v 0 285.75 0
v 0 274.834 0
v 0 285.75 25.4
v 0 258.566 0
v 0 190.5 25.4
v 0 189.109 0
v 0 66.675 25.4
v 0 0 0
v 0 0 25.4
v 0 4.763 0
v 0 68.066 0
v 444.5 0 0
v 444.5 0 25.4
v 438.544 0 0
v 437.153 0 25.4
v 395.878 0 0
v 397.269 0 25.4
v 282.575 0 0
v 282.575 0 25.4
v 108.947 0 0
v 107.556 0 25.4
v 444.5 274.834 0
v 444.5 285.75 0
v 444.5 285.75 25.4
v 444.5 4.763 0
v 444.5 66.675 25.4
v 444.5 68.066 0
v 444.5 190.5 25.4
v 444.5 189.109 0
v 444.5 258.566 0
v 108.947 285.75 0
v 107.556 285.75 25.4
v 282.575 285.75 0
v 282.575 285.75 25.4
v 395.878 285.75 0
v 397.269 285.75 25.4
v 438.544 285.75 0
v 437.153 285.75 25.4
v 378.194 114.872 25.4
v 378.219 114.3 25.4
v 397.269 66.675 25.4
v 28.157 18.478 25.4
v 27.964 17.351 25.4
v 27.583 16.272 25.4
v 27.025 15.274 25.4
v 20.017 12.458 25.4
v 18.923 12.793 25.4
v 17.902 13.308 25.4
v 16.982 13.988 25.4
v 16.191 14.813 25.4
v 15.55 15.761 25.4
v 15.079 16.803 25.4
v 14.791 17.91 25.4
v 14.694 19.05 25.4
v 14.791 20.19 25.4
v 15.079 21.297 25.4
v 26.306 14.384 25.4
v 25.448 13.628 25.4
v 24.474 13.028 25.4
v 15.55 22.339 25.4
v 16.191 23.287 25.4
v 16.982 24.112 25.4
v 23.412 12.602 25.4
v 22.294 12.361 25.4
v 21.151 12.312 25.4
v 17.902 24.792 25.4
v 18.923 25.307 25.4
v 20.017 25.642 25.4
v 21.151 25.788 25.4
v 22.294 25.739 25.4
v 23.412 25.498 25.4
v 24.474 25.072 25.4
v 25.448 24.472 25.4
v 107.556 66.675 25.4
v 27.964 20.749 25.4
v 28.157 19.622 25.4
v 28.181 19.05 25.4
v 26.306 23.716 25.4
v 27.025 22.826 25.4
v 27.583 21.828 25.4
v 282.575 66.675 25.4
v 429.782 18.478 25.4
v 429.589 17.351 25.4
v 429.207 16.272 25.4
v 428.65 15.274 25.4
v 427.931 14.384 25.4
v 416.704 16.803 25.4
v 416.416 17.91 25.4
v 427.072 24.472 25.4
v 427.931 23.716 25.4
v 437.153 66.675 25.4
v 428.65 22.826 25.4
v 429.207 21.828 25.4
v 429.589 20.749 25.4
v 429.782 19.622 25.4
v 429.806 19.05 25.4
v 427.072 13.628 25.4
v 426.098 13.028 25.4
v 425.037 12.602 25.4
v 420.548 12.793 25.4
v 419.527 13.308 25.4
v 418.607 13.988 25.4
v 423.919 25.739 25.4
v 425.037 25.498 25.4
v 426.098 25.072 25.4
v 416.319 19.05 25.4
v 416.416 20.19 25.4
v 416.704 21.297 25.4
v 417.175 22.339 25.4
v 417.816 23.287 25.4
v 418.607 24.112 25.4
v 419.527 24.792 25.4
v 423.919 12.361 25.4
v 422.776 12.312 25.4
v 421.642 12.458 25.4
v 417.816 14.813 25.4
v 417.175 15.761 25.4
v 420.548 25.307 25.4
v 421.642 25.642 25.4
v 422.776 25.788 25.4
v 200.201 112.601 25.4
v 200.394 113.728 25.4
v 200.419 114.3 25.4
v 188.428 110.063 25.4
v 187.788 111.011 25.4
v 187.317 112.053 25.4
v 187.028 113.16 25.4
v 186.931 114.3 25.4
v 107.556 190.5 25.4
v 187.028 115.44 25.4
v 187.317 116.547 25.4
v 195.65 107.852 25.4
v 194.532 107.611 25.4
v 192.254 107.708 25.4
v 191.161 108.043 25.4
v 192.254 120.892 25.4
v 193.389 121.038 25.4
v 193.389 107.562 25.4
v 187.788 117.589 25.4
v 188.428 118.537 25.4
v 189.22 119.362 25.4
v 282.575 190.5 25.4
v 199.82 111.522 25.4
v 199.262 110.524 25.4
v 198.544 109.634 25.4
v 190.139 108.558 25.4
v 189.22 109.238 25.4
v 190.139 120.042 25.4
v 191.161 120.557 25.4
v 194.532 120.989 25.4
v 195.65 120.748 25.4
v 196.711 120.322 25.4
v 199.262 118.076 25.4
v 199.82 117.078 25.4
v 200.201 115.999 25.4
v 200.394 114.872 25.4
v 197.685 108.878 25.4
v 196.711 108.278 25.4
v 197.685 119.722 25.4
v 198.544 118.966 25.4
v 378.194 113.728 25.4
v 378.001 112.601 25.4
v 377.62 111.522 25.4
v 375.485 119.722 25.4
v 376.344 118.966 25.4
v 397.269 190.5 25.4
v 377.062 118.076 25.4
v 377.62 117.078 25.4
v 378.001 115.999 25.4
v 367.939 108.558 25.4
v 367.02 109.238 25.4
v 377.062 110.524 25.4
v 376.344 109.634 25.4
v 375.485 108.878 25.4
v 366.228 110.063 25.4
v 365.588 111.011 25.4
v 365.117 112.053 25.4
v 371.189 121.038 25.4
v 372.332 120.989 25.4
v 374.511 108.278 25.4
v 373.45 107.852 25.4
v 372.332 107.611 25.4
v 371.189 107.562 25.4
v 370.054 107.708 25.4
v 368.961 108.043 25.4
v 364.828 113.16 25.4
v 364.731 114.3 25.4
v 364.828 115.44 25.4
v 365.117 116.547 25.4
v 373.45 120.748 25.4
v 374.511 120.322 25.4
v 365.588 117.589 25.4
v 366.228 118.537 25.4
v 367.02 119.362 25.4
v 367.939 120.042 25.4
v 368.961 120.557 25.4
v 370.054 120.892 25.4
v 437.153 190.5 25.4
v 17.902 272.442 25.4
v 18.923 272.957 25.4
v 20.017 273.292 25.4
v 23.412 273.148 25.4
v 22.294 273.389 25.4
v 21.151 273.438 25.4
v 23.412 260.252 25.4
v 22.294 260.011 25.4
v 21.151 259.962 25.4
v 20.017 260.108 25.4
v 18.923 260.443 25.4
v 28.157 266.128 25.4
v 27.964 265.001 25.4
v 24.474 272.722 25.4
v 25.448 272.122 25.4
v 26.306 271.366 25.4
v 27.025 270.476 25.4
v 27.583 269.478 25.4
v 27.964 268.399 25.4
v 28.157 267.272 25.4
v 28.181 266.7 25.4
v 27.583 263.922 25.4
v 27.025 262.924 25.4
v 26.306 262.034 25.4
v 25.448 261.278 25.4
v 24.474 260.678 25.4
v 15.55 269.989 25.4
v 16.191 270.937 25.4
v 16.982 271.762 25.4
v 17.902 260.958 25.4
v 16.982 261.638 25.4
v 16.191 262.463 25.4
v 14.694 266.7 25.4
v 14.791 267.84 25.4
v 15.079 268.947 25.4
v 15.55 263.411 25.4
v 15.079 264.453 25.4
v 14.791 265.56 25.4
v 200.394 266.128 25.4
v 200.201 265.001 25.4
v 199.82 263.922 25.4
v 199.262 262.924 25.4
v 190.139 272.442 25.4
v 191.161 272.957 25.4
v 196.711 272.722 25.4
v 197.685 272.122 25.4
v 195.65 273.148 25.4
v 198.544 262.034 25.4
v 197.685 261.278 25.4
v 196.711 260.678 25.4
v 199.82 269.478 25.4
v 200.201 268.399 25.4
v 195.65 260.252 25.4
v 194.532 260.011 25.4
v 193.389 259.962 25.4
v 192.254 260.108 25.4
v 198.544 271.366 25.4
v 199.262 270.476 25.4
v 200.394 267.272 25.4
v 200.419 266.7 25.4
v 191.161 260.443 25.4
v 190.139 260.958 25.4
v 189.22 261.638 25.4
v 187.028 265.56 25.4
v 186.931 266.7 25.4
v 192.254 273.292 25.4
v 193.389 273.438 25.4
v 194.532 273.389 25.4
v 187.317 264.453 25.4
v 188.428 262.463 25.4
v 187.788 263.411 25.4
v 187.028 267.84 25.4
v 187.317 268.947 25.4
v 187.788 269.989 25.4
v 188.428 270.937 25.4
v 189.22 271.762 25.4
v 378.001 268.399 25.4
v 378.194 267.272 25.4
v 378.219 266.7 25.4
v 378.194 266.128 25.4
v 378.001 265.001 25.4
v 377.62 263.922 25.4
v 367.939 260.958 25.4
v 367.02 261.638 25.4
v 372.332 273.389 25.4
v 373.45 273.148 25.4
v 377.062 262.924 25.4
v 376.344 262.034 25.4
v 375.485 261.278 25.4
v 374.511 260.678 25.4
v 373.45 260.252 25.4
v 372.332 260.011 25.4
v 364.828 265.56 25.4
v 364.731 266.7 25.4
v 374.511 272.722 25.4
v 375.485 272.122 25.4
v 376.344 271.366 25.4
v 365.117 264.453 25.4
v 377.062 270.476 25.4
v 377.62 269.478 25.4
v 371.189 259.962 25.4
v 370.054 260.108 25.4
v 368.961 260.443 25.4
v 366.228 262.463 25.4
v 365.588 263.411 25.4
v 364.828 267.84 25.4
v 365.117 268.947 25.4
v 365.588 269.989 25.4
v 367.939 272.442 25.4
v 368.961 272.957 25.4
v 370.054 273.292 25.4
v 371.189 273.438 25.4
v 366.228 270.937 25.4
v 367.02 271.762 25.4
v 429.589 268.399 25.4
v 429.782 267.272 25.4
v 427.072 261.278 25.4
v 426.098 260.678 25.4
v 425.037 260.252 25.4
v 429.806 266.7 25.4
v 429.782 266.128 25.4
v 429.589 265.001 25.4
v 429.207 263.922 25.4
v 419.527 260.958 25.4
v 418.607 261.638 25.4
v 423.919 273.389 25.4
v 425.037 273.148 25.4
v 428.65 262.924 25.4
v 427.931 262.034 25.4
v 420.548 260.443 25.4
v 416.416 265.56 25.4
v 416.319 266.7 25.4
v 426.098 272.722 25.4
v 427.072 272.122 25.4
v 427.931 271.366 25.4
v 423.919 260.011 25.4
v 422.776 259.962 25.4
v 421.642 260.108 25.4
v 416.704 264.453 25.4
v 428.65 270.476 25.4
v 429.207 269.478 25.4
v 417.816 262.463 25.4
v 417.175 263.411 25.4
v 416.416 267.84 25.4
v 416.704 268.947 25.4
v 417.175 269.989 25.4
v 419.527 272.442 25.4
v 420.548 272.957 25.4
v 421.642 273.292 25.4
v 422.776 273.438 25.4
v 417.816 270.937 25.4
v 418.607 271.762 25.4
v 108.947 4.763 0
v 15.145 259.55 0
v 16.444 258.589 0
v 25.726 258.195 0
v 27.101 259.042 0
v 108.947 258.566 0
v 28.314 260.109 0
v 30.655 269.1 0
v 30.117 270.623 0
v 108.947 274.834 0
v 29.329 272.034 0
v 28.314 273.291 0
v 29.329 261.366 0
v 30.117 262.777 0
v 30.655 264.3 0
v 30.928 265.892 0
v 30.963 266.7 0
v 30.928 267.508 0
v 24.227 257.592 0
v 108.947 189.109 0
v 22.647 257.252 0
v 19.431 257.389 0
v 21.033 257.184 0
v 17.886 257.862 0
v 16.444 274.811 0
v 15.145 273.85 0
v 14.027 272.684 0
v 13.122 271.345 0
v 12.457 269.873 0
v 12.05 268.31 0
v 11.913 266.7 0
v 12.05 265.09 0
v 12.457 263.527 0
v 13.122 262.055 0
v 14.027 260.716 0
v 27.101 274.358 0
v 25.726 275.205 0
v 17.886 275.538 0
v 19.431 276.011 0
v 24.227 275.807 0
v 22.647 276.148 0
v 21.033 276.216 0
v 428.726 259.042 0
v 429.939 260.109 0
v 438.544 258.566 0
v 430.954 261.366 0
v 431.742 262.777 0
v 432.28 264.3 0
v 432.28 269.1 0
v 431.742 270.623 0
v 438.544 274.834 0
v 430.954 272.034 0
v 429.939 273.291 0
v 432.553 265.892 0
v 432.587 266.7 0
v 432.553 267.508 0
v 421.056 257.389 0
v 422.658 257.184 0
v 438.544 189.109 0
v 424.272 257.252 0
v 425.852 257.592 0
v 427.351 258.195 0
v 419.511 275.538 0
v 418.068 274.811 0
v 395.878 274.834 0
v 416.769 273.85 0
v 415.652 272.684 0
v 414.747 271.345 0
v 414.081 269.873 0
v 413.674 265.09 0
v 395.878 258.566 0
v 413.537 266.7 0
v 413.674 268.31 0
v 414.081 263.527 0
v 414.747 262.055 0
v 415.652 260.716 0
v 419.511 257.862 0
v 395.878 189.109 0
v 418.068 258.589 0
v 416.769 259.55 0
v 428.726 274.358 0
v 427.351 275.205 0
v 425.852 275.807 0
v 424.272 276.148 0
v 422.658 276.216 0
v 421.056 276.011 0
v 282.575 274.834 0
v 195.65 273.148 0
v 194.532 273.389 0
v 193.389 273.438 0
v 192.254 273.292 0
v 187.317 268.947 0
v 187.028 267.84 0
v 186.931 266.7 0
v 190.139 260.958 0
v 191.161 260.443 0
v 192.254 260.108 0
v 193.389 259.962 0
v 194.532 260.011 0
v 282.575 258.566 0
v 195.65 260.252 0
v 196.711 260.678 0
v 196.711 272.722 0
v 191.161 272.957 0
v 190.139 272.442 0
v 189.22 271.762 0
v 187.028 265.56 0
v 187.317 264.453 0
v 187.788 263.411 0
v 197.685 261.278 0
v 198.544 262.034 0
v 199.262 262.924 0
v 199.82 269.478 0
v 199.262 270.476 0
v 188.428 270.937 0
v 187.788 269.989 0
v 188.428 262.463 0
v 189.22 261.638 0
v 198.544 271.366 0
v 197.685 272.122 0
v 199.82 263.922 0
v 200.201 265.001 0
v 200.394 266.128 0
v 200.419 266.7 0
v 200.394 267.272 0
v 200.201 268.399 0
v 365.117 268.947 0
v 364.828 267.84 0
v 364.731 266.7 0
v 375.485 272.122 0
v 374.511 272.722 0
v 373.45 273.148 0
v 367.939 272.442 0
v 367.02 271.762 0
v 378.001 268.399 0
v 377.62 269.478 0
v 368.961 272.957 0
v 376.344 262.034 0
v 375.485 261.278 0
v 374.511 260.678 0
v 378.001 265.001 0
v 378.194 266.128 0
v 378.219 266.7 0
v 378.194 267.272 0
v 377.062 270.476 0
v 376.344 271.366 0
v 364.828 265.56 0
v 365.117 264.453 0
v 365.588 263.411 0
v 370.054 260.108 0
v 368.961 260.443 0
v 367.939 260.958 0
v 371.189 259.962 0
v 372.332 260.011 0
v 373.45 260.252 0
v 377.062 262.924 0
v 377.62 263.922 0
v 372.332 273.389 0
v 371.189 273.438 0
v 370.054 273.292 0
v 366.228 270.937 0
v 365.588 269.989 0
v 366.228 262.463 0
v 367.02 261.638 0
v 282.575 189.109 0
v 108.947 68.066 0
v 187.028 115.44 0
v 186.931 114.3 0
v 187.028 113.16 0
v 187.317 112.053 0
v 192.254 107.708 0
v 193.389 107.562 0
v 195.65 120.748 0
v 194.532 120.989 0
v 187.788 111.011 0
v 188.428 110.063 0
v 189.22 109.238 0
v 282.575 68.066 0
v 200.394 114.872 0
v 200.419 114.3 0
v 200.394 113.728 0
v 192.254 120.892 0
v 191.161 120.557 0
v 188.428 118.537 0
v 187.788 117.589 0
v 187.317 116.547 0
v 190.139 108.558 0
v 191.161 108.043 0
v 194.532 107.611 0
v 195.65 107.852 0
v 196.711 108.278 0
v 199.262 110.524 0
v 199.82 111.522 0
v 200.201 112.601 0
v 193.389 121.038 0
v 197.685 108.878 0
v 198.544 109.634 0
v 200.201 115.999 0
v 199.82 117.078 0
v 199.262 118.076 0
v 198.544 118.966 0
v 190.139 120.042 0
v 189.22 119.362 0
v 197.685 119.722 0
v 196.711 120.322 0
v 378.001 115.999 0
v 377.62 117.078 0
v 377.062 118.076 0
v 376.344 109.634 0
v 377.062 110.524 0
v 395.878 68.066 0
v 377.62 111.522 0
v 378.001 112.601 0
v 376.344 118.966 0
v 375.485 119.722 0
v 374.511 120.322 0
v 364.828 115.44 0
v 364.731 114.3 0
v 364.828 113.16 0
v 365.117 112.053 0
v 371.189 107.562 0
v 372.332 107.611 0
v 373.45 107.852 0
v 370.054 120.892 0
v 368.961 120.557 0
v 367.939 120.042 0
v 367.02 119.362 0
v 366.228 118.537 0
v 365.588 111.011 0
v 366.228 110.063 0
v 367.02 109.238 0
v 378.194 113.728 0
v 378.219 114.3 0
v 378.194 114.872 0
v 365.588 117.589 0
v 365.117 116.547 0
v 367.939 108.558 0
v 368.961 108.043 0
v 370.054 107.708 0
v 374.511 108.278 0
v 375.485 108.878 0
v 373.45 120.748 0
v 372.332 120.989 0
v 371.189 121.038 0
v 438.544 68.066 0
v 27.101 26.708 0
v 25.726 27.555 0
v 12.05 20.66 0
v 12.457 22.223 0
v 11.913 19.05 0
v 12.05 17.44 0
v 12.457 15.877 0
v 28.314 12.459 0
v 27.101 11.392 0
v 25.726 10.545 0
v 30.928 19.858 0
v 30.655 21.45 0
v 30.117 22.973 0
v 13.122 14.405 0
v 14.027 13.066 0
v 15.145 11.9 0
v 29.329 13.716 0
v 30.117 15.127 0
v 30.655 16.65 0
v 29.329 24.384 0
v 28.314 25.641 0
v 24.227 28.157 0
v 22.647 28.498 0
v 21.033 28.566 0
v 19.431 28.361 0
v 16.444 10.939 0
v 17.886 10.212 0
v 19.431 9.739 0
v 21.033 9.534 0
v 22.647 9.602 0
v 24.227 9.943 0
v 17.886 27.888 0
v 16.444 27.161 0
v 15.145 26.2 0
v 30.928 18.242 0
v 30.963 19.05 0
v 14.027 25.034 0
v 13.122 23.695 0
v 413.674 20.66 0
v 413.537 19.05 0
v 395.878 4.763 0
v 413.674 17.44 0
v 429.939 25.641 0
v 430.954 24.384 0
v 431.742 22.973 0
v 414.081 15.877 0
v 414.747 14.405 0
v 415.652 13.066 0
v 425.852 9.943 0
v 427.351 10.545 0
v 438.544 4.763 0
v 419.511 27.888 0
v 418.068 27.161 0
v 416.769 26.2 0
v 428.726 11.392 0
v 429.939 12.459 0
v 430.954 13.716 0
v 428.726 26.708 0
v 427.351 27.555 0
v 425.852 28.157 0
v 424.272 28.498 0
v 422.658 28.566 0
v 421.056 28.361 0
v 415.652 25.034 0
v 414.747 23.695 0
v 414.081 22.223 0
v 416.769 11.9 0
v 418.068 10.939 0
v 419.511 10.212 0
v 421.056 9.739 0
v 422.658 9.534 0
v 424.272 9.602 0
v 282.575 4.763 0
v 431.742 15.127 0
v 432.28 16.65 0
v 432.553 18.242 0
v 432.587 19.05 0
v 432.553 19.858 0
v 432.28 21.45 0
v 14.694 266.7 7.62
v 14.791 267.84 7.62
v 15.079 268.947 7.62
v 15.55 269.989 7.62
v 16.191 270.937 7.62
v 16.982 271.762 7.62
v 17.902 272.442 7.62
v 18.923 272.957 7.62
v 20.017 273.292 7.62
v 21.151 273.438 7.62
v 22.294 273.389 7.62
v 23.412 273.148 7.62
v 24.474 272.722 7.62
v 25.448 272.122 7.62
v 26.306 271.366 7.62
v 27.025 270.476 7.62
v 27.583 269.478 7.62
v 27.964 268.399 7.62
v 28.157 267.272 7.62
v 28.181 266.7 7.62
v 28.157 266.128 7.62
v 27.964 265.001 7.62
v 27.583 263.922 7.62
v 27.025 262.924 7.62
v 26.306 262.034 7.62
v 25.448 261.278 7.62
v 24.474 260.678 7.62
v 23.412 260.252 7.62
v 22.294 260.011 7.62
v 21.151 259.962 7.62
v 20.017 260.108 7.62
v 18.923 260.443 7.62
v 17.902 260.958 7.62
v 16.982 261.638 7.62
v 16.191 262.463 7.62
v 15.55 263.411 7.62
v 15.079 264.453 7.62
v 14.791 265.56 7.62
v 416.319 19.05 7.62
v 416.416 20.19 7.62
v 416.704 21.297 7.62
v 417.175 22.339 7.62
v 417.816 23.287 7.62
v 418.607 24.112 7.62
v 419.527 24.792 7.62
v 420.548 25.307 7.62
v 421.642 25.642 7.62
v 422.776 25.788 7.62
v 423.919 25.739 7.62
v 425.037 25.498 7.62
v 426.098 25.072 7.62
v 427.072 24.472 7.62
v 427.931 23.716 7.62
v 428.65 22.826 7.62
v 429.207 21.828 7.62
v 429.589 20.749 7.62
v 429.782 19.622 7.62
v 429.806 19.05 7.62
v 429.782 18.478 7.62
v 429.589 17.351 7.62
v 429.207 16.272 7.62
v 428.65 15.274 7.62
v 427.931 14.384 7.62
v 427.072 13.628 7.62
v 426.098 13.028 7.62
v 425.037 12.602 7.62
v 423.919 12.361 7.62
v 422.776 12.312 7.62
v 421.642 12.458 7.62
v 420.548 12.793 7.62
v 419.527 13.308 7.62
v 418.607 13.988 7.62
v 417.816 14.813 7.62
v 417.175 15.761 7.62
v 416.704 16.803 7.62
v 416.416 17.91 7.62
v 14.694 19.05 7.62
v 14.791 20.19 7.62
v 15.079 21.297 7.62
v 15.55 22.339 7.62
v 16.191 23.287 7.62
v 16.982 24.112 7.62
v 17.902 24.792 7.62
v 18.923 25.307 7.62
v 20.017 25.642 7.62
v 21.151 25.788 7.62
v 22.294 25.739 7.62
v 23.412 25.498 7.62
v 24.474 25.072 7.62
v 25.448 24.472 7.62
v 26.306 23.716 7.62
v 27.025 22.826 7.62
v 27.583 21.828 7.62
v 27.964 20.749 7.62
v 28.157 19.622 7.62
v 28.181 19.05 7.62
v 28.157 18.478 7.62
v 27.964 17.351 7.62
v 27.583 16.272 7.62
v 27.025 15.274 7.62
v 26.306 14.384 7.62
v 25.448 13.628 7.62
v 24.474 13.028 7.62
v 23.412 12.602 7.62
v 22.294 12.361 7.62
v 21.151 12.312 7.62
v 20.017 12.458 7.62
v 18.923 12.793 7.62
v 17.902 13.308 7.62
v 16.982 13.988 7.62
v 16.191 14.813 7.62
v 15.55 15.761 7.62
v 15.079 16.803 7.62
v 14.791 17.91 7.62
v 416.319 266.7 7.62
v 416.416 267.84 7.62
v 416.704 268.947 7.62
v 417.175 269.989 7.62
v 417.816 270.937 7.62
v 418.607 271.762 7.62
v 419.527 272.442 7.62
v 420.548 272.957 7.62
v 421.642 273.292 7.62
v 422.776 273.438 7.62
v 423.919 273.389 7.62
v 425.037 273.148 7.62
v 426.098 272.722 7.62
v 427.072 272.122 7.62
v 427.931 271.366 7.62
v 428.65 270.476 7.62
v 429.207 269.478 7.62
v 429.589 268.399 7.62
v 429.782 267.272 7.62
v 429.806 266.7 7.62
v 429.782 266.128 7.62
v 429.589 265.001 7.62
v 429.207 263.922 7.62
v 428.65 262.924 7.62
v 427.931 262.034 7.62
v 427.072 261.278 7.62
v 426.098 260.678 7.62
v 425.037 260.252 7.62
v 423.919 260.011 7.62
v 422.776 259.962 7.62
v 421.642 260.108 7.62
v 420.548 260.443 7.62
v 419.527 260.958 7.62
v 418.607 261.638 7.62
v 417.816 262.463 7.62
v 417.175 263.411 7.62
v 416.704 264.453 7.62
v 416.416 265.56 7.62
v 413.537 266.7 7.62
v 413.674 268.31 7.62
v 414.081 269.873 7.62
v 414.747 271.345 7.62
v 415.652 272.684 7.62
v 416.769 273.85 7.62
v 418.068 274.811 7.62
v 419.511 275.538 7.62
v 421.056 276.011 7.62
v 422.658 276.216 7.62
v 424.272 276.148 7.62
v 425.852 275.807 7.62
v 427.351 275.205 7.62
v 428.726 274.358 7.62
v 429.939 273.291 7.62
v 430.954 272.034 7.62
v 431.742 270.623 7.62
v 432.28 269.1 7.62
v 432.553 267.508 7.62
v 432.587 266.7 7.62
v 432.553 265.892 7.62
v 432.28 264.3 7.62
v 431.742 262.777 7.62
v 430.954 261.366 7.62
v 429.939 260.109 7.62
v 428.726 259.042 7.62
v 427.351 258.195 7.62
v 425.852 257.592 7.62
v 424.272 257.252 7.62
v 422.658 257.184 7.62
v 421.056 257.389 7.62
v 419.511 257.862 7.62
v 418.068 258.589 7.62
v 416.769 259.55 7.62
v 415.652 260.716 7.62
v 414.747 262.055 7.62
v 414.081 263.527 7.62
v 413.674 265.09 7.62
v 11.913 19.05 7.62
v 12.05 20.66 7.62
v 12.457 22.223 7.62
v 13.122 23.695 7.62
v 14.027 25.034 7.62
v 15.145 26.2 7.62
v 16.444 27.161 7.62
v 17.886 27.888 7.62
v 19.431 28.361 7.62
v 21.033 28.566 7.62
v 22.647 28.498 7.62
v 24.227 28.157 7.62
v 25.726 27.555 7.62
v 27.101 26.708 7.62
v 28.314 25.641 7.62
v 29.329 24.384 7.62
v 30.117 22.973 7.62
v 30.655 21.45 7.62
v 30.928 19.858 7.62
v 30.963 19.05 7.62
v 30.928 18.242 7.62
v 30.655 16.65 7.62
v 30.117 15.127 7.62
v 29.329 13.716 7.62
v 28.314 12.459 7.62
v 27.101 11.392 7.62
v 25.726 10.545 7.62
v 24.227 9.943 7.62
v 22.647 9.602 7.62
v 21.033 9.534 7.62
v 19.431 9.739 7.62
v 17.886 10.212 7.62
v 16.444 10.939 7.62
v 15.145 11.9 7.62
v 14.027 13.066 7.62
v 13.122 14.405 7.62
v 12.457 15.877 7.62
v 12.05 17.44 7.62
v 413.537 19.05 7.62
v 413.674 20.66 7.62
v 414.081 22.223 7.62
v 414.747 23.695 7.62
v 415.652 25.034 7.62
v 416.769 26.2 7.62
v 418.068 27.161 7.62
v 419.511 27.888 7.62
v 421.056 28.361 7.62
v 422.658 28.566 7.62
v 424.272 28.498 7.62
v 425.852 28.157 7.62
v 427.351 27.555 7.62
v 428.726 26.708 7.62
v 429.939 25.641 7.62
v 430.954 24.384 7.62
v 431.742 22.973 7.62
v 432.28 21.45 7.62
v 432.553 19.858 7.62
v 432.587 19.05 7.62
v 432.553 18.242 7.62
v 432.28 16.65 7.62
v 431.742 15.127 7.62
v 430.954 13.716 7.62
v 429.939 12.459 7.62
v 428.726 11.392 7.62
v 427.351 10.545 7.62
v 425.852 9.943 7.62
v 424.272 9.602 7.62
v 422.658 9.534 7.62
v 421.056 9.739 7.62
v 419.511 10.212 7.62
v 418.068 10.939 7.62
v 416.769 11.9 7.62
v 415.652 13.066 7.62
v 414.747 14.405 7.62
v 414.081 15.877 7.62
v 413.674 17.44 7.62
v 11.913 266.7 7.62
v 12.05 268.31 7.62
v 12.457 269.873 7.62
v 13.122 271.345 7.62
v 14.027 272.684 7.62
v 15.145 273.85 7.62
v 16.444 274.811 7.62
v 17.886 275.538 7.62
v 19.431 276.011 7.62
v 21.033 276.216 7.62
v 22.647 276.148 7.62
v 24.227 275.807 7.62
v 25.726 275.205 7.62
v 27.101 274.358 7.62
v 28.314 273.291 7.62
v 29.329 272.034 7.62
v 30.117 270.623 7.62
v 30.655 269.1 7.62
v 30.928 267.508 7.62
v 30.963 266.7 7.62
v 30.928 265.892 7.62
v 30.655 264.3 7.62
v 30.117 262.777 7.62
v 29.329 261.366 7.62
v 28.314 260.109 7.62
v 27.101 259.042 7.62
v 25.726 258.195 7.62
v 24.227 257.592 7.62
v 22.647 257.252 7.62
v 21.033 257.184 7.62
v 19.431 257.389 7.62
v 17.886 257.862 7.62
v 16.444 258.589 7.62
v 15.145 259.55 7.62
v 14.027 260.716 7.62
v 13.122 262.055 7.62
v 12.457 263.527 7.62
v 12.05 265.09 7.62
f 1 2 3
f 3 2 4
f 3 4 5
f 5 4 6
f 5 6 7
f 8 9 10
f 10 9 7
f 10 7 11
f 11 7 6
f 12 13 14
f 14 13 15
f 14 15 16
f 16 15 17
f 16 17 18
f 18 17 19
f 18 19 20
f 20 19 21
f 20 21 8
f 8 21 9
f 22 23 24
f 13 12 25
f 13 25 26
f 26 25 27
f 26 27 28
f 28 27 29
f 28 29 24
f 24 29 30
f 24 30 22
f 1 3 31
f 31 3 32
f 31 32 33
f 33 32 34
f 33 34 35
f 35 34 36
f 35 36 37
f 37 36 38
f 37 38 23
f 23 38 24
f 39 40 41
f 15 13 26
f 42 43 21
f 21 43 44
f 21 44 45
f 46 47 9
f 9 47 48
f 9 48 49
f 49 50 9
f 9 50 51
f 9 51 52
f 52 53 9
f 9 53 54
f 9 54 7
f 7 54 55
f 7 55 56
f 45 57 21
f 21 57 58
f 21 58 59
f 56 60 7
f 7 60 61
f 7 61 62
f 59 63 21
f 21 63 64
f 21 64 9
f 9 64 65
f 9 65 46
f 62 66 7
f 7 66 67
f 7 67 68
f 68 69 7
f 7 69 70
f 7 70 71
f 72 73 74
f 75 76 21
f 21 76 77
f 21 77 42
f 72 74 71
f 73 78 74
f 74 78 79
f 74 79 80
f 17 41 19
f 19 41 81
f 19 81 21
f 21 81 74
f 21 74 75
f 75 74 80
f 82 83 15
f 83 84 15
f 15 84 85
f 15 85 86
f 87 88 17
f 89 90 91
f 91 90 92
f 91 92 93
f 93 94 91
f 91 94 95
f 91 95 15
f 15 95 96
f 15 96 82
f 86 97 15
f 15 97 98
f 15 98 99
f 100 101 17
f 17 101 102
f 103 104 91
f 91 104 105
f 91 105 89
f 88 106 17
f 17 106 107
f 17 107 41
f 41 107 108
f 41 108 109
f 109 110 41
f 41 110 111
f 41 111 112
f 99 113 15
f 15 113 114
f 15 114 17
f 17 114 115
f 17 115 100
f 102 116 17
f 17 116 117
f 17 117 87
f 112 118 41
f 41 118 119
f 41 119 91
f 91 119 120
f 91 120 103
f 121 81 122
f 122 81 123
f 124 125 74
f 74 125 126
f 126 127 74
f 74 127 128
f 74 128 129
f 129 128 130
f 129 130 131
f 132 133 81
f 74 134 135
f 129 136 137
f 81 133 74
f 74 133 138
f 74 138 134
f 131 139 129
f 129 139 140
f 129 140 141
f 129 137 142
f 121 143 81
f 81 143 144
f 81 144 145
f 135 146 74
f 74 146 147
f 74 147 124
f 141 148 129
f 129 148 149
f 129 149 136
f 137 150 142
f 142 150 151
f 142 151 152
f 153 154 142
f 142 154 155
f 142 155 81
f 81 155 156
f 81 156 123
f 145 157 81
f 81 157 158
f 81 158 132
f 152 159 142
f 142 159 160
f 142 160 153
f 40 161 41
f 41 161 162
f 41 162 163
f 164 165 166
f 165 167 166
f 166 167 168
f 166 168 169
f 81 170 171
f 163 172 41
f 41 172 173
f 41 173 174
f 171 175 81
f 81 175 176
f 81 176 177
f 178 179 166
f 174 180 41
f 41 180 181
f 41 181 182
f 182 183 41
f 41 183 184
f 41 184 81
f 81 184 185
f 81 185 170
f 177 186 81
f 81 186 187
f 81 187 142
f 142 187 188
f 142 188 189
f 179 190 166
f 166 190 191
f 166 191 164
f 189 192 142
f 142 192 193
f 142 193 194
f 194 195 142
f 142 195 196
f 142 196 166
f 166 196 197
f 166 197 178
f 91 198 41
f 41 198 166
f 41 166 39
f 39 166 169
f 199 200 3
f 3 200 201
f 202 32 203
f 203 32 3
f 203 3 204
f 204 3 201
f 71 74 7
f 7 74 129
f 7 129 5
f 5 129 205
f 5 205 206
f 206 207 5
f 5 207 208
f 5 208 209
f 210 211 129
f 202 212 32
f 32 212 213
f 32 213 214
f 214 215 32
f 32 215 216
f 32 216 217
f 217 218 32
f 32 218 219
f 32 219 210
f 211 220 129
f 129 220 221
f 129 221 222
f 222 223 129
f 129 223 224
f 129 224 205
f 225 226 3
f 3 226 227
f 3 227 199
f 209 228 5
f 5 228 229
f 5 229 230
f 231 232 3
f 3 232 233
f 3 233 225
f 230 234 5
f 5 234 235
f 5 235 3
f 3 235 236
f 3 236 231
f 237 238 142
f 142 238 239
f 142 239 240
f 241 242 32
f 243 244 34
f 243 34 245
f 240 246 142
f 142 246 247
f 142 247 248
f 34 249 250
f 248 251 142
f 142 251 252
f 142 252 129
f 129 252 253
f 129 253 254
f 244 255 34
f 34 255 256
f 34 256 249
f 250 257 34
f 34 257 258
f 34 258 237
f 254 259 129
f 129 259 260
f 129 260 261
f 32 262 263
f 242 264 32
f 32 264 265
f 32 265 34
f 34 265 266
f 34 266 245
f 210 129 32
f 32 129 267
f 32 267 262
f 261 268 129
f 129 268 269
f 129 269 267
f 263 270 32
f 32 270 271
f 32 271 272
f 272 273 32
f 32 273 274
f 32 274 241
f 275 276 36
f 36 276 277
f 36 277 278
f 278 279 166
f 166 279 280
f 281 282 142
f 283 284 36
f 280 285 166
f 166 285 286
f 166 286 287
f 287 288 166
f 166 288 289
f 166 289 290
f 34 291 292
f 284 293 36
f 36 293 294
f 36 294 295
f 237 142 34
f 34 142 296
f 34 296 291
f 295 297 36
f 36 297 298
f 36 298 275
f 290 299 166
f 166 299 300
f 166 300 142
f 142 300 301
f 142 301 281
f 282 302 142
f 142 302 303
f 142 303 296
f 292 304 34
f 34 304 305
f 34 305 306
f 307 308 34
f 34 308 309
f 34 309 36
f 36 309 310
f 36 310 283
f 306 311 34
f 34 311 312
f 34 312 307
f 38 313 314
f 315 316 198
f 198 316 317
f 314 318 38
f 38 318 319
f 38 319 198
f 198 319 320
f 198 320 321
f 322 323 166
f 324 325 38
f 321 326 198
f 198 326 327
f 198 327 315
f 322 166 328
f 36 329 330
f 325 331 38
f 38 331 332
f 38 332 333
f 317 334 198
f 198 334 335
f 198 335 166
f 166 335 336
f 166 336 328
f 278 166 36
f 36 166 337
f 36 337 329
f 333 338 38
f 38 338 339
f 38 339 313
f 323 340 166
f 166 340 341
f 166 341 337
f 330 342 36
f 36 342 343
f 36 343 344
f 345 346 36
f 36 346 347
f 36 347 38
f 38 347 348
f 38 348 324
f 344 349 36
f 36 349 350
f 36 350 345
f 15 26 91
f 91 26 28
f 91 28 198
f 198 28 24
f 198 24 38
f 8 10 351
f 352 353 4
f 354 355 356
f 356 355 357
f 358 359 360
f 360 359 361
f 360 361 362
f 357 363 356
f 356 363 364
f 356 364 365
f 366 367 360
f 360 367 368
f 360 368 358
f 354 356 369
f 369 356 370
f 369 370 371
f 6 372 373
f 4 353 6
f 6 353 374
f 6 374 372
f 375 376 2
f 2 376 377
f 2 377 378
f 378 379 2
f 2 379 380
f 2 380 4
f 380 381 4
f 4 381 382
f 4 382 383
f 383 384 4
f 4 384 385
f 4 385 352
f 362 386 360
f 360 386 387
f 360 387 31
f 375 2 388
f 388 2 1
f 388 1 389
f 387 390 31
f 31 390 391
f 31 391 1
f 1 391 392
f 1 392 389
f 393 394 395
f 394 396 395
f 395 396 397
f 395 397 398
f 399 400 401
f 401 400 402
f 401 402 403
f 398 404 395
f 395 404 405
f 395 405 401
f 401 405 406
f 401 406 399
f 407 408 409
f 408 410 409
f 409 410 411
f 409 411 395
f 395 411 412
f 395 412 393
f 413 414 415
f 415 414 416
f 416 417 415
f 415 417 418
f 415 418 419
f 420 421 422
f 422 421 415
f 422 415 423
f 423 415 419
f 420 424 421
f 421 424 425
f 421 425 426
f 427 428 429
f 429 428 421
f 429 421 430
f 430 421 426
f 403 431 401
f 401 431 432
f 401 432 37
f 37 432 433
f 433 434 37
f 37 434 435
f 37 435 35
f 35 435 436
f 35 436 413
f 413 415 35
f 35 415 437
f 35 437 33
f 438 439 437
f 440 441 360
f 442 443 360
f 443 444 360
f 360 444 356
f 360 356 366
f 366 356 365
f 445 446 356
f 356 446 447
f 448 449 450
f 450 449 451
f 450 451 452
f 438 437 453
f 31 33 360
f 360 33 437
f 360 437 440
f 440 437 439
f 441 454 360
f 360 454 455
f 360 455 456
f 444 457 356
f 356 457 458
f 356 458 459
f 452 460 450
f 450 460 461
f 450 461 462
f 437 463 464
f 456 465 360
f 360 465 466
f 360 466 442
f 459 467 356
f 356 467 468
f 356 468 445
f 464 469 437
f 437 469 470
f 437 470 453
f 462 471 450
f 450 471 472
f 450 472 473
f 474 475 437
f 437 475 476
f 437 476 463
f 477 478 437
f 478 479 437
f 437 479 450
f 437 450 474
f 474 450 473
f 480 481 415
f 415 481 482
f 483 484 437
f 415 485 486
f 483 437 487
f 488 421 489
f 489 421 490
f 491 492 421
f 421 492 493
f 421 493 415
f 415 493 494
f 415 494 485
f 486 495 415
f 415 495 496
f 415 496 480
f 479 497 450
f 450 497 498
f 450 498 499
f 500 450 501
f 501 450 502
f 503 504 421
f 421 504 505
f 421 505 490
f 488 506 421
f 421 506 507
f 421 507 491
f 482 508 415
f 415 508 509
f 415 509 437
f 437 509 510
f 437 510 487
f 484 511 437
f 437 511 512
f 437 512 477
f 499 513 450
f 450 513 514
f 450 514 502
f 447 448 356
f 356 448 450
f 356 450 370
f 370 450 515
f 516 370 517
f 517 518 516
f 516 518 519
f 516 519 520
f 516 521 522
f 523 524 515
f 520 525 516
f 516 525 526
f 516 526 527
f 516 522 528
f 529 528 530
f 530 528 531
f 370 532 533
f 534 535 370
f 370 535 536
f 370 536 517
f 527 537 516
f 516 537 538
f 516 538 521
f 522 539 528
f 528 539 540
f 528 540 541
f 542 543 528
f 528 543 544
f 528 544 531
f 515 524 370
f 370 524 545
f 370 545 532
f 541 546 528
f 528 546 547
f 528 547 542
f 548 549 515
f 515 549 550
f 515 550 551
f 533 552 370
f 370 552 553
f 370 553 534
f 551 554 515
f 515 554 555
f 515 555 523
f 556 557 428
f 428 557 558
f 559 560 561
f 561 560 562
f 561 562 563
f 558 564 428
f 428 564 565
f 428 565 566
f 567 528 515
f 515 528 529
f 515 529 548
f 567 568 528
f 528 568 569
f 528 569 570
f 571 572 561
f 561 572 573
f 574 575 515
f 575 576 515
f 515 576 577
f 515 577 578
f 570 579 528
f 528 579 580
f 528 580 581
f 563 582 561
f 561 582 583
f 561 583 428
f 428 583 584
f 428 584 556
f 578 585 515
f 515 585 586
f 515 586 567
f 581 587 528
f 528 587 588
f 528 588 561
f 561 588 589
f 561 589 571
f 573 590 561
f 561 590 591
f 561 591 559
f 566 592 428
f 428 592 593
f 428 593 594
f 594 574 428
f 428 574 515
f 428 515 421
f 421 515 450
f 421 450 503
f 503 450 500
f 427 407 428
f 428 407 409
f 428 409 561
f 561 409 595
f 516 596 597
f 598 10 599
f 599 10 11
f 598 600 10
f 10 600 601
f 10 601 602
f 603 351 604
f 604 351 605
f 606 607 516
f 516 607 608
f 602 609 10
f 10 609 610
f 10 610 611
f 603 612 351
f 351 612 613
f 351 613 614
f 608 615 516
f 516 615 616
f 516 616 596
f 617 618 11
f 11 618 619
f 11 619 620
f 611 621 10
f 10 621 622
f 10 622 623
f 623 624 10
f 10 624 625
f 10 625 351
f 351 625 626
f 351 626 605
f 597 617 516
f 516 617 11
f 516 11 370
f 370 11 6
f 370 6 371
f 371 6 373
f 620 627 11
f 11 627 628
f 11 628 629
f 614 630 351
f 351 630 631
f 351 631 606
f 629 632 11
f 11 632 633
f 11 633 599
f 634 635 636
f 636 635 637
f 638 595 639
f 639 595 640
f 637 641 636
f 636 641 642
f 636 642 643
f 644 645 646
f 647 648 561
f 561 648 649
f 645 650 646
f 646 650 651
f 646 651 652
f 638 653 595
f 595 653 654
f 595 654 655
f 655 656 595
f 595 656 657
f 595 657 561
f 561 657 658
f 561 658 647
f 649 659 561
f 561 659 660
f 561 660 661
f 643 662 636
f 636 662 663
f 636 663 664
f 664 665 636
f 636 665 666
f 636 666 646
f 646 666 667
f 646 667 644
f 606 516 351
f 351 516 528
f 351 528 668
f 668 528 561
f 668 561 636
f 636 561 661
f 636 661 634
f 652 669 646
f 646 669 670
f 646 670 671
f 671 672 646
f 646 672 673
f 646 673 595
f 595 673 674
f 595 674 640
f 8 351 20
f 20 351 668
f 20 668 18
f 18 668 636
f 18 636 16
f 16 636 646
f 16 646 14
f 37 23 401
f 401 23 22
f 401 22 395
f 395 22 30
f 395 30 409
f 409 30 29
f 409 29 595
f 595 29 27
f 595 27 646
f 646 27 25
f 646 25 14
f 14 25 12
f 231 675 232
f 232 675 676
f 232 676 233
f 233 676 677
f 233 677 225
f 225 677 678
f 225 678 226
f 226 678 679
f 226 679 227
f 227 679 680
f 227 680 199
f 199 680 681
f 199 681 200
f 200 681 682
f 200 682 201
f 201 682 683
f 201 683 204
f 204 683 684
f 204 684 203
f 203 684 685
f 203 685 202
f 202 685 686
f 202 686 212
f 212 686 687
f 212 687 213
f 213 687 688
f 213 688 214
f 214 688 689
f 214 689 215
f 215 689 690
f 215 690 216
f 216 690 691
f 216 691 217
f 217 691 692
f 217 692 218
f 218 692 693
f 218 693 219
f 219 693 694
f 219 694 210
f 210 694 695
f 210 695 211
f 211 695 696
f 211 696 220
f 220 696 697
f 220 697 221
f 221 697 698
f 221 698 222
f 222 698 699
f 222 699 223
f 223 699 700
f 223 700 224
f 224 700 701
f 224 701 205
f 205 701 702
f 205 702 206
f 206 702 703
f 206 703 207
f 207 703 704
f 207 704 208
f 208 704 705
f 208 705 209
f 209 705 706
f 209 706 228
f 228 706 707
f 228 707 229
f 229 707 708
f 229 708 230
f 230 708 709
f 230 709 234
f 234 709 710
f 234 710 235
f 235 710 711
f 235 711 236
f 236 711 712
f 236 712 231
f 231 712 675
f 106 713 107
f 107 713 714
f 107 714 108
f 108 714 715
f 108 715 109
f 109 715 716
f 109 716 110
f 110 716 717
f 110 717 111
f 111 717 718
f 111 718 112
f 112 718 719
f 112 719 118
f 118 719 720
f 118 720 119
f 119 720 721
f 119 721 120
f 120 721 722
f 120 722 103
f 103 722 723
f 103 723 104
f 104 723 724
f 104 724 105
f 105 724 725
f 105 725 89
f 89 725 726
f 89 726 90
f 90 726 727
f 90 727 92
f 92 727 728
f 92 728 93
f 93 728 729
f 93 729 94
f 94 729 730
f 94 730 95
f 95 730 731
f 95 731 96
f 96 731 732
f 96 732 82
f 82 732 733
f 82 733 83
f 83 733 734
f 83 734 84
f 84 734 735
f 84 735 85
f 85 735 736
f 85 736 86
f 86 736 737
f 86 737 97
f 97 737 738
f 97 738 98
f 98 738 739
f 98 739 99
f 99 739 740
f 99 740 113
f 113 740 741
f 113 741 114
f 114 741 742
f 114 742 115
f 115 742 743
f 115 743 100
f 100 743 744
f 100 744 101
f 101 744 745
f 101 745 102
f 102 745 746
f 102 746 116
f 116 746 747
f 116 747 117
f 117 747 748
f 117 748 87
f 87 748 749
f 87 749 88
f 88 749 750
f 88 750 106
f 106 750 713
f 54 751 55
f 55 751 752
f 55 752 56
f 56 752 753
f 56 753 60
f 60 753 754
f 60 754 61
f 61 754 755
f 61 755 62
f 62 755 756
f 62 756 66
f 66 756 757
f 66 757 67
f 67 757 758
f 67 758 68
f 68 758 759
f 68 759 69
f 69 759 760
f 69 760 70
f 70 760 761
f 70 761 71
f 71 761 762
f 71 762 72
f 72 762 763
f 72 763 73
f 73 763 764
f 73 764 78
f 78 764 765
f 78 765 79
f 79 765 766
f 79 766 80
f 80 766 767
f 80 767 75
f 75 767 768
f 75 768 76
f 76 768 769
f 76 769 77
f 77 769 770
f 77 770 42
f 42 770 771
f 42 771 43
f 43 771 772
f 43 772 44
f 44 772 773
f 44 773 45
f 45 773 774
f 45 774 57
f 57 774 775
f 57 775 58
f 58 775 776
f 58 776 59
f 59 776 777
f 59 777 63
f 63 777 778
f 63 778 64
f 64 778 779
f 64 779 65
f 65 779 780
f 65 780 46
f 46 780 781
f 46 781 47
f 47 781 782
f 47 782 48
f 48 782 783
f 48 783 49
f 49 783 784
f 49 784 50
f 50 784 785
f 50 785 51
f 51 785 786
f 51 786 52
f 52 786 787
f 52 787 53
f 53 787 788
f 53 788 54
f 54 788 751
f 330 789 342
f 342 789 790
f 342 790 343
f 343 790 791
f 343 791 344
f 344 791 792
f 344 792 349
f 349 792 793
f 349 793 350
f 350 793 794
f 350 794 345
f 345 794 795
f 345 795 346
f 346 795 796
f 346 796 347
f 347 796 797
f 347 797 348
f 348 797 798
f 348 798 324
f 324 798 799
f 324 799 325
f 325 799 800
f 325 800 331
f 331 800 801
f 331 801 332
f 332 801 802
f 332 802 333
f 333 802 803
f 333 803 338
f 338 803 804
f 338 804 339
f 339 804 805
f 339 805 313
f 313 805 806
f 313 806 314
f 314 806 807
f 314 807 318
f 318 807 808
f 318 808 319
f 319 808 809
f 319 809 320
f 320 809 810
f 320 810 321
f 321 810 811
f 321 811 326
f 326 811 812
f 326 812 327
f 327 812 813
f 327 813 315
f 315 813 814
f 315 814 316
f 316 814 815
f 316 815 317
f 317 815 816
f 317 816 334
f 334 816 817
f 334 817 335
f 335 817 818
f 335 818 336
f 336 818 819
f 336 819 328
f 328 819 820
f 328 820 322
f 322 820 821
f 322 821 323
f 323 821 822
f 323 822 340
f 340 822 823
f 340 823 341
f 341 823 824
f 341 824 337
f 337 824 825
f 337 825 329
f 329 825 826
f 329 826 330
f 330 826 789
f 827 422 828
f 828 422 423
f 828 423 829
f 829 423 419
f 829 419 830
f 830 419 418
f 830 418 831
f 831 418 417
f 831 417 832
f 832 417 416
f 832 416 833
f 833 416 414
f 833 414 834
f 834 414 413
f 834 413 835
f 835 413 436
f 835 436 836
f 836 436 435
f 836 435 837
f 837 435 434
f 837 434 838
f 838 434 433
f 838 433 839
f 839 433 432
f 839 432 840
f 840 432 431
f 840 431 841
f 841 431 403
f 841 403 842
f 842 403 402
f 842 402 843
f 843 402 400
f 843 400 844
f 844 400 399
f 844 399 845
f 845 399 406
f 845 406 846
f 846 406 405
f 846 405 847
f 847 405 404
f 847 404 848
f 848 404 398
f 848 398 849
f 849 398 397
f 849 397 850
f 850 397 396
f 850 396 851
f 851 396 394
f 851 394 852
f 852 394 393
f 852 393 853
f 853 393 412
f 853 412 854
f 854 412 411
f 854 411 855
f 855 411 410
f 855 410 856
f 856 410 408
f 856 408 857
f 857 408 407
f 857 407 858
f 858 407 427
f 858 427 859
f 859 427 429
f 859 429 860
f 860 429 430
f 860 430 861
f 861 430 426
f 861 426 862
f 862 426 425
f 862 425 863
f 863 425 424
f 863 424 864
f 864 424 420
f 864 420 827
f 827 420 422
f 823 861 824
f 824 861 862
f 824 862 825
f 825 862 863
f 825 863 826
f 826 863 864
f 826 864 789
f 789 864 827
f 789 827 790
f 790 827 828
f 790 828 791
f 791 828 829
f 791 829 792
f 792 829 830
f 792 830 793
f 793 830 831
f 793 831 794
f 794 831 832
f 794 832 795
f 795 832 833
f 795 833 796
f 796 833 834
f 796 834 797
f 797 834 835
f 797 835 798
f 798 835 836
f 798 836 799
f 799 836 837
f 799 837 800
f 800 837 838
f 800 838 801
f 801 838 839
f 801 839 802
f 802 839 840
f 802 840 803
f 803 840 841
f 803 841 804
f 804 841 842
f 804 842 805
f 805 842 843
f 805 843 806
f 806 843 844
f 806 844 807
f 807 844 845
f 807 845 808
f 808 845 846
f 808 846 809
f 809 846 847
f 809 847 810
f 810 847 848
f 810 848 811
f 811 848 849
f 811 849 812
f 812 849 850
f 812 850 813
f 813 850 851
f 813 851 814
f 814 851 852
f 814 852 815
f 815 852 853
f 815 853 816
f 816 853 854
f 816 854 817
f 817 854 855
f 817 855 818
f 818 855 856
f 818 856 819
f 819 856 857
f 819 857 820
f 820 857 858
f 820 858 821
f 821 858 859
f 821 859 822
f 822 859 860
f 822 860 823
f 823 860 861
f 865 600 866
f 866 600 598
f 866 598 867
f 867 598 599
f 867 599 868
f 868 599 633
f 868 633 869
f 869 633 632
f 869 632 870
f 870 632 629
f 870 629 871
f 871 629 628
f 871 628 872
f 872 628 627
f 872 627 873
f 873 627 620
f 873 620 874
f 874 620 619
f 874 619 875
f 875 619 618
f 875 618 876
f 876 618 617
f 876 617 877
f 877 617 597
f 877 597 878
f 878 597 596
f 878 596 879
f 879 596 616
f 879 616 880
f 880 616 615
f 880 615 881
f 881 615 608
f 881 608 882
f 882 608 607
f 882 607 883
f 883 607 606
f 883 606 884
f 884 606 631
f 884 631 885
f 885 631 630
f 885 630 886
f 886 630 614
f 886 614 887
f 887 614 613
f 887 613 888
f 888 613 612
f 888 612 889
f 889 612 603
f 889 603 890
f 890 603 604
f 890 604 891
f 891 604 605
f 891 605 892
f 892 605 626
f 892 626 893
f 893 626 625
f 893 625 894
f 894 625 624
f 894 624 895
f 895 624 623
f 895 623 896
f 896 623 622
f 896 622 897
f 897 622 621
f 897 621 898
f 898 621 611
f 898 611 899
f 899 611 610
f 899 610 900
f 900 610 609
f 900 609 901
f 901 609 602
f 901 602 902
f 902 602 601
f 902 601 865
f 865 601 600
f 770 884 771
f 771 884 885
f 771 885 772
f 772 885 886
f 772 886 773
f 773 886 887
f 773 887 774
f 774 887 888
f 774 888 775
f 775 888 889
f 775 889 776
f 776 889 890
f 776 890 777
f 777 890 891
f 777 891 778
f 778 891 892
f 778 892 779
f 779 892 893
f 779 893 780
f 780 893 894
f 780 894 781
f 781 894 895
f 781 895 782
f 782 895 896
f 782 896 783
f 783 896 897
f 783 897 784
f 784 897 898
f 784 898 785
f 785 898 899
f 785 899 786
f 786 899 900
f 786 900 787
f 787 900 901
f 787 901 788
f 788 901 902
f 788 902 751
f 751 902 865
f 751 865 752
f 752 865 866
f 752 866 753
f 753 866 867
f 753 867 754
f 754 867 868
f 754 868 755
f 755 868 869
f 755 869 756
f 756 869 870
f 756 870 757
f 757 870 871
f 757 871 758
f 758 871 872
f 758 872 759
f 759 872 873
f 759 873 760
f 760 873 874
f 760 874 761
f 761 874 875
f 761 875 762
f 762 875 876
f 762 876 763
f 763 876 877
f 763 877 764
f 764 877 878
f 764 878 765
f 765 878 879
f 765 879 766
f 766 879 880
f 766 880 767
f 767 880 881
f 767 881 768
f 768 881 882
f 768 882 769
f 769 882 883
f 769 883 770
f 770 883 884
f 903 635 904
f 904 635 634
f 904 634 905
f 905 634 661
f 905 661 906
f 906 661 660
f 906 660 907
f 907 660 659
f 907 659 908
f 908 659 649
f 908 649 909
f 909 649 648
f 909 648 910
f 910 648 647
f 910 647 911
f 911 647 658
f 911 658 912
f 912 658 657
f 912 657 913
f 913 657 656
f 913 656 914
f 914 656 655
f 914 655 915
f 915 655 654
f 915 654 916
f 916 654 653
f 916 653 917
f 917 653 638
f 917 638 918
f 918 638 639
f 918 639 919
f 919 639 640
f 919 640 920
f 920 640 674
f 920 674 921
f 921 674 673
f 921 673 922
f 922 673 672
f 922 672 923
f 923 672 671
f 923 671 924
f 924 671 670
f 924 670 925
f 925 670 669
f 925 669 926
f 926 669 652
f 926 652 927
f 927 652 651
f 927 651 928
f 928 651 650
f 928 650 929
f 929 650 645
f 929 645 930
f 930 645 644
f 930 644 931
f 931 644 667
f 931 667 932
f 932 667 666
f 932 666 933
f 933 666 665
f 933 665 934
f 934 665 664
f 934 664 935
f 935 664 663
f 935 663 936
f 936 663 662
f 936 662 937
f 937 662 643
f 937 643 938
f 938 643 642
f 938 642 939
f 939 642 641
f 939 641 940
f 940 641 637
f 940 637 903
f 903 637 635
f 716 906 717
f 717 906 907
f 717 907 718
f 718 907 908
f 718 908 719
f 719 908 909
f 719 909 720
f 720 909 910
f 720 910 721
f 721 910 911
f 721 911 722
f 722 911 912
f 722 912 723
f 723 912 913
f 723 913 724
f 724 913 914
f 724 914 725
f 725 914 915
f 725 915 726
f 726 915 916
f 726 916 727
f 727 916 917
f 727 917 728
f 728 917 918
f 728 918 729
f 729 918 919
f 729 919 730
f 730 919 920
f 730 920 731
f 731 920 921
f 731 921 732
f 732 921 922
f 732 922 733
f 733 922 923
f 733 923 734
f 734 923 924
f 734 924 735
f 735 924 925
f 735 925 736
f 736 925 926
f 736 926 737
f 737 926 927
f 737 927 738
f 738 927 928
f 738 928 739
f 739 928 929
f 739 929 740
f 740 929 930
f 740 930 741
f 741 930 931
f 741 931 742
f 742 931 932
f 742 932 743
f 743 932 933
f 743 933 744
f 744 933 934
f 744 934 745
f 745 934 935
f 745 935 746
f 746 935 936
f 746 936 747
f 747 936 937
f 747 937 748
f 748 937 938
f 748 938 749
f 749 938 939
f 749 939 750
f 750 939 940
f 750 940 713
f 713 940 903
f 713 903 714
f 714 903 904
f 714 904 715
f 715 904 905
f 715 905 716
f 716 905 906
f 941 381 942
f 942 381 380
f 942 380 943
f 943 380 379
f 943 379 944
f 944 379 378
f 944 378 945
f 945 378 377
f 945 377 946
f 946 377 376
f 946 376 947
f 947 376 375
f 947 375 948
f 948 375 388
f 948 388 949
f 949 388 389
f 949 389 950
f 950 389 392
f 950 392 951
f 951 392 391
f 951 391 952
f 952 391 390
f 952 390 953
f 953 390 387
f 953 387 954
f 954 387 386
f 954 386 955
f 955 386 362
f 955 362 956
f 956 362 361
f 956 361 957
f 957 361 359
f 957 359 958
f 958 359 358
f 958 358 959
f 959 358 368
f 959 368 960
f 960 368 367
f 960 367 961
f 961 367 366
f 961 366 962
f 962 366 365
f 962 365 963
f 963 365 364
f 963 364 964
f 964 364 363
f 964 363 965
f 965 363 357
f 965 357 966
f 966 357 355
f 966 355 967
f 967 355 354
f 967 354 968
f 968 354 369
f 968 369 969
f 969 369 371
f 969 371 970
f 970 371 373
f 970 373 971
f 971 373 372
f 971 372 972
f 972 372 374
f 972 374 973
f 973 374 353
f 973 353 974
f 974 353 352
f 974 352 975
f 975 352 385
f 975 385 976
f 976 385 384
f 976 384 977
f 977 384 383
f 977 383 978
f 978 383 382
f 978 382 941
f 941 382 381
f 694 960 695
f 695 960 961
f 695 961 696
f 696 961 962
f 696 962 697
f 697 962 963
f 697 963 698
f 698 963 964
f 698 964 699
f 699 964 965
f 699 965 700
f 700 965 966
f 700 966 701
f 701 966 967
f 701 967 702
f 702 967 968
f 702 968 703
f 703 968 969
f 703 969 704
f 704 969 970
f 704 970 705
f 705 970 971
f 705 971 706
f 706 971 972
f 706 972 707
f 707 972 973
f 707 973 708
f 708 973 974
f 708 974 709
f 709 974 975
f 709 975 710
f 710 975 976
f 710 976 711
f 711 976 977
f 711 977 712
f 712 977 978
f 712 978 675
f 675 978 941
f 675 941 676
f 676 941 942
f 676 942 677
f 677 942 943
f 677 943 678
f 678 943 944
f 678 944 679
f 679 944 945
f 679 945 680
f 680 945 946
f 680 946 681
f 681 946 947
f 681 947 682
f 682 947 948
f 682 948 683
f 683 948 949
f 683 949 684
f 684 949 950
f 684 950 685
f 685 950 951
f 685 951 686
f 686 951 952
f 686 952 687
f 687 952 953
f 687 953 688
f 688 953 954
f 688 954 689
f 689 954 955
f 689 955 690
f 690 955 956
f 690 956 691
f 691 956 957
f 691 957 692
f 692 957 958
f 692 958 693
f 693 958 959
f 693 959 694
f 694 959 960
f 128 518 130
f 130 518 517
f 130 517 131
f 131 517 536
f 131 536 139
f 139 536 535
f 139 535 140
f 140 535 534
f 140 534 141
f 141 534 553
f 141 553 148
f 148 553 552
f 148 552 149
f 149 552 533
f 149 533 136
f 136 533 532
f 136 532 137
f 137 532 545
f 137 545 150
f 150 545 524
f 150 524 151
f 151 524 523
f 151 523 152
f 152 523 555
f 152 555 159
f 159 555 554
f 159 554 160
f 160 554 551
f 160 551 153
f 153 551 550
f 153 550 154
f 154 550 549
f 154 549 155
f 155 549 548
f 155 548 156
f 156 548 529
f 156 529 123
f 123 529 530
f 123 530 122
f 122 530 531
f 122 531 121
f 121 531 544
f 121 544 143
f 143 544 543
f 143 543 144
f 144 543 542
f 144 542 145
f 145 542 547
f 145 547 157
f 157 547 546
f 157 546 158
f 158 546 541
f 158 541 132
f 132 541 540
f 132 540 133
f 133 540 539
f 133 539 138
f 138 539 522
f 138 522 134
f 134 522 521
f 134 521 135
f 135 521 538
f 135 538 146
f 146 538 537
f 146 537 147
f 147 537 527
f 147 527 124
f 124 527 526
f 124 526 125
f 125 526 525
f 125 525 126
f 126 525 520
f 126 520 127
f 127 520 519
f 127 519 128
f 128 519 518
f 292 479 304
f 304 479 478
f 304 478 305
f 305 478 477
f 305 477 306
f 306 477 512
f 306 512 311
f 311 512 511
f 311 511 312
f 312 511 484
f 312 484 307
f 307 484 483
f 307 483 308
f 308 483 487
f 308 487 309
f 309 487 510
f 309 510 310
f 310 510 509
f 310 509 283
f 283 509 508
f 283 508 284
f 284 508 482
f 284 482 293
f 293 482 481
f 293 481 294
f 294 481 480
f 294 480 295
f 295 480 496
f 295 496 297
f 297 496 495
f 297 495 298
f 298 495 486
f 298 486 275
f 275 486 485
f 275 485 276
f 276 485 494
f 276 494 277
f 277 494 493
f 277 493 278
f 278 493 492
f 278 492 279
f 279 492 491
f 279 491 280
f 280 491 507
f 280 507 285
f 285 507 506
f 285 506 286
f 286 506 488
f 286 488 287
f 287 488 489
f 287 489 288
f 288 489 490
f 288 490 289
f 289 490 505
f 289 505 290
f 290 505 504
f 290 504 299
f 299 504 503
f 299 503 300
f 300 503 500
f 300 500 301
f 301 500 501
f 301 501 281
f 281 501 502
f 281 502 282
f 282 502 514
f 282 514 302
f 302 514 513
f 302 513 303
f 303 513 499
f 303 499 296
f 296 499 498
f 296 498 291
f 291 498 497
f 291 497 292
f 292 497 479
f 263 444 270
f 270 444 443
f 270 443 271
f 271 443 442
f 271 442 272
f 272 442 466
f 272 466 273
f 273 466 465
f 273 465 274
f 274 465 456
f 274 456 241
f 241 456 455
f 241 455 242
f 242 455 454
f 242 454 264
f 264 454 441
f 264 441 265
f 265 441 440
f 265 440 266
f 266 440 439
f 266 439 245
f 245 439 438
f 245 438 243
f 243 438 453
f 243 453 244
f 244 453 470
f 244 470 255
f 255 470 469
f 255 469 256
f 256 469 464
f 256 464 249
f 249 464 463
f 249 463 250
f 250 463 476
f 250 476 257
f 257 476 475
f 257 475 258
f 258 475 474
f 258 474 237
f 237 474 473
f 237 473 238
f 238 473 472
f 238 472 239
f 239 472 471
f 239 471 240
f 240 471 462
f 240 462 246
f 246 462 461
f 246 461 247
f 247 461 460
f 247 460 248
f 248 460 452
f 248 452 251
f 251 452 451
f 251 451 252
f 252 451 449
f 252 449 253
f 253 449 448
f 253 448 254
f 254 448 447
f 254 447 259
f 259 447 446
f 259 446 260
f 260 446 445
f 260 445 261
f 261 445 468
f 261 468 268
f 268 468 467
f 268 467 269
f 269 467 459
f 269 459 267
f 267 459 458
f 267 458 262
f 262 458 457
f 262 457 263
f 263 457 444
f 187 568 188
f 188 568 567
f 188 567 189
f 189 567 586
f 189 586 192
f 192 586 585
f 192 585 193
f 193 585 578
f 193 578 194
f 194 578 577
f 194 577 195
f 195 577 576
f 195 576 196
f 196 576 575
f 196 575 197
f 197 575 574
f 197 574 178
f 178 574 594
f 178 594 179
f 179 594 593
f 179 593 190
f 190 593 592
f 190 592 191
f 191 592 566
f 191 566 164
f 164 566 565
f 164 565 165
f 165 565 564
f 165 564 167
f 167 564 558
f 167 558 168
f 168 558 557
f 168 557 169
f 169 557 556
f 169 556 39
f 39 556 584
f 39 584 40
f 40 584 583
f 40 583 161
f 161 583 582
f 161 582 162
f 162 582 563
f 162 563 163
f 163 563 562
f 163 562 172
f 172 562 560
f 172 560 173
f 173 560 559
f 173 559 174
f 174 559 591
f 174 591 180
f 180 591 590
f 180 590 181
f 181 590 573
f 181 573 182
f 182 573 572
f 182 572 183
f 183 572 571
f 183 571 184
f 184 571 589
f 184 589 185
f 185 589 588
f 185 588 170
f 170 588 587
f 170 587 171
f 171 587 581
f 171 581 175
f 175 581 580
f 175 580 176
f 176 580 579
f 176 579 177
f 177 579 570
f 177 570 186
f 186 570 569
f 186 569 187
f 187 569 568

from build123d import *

# Parameters (mm, degrees)
SKETCH1_W           = 444.5
SKETCH1_H           = 285.75
BOSS_EXTRUDE1_DEPTH = 25.4
SKETCH2_R           = 6.7437
CUT_EXTRUDE1_DEPTH  = 530.035417056
SKETCH3_R           = 9.525
CUT_EXTRUDE2_DEPTH  = 7.62
SKETCH4_R           = 6.7437
CUT_EXTRUDE3_DEPTH  = 530.035417056


with BuildPart() as part:
    # Sketch1 → Boss-Extrude1 (new body)
    with BuildSketch(Plane.XY):
        with Locations((222.25, 142.875)):
            Rectangle(SKETCH1_W, SKETCH1_H)
    extrude(amount=BOSS_EXTRUDE1_DEPTH)

    # Sketch2 → Cut-Extrude1 (cut, through all)
    with BuildSketch(Plane.XY):
        with Locations((21.4376, 266.7)):
            Circle(SKETCH2_R)
        with Locations((423.0624, 266.7)):
            Circle(SKETCH2_R)
        with Locations((21.4376, 19.05)):
            Circle(SKETCH2_R)
        with Locations((423.0624, 19.05)):
            Circle(SKETCH2_R)
    extrude(amount=CUT_EXTRUDE1_DEPTH, mode=Mode.SUBTRACT)

    # Sketch3 → Cut-Extrude2 (cut)
    with BuildSketch(Plane.XY):
        with Locations(Location((21.4376, 266.7, 0), (0, 0, 180))):
            Circle(SKETCH3_R)
        with Locations(Location((423.0624, 266.7, 0), (0, 0, 180))):
            Circle(SKETCH3_R)
        with Locations(Location((21.4376, 19.05, 0), (0, 0, 180))):
            Circle(SKETCH3_R)
        with Locations(Location((423.0624, 19.05, 0), (0, 0, 180))):
            Circle(SKETCH3_R)
    extrude(amount=CUT_EXTRUDE2_DEPTH, mode=Mode.SUBTRACT)

    # Sketch4 → Cut-Extrude3 (cut, through all)
    with BuildSketch(Plane.XY):
        with Locations((193.675, 114.3)):
            Circle(SKETCH4_R)
        with Locations((371.475, 114.3)):
            Circle(SKETCH4_R)
        with Locations((193.675, 266.7)):
            Circle(SKETCH4_R)
        with Locations((371.475, 266.7)):
            Circle(SKETCH4_R)
    extrude(amount=CUT_EXTRUDE3_DEPTH, mode=Mode.SUBTRACT)


solid = part.part
